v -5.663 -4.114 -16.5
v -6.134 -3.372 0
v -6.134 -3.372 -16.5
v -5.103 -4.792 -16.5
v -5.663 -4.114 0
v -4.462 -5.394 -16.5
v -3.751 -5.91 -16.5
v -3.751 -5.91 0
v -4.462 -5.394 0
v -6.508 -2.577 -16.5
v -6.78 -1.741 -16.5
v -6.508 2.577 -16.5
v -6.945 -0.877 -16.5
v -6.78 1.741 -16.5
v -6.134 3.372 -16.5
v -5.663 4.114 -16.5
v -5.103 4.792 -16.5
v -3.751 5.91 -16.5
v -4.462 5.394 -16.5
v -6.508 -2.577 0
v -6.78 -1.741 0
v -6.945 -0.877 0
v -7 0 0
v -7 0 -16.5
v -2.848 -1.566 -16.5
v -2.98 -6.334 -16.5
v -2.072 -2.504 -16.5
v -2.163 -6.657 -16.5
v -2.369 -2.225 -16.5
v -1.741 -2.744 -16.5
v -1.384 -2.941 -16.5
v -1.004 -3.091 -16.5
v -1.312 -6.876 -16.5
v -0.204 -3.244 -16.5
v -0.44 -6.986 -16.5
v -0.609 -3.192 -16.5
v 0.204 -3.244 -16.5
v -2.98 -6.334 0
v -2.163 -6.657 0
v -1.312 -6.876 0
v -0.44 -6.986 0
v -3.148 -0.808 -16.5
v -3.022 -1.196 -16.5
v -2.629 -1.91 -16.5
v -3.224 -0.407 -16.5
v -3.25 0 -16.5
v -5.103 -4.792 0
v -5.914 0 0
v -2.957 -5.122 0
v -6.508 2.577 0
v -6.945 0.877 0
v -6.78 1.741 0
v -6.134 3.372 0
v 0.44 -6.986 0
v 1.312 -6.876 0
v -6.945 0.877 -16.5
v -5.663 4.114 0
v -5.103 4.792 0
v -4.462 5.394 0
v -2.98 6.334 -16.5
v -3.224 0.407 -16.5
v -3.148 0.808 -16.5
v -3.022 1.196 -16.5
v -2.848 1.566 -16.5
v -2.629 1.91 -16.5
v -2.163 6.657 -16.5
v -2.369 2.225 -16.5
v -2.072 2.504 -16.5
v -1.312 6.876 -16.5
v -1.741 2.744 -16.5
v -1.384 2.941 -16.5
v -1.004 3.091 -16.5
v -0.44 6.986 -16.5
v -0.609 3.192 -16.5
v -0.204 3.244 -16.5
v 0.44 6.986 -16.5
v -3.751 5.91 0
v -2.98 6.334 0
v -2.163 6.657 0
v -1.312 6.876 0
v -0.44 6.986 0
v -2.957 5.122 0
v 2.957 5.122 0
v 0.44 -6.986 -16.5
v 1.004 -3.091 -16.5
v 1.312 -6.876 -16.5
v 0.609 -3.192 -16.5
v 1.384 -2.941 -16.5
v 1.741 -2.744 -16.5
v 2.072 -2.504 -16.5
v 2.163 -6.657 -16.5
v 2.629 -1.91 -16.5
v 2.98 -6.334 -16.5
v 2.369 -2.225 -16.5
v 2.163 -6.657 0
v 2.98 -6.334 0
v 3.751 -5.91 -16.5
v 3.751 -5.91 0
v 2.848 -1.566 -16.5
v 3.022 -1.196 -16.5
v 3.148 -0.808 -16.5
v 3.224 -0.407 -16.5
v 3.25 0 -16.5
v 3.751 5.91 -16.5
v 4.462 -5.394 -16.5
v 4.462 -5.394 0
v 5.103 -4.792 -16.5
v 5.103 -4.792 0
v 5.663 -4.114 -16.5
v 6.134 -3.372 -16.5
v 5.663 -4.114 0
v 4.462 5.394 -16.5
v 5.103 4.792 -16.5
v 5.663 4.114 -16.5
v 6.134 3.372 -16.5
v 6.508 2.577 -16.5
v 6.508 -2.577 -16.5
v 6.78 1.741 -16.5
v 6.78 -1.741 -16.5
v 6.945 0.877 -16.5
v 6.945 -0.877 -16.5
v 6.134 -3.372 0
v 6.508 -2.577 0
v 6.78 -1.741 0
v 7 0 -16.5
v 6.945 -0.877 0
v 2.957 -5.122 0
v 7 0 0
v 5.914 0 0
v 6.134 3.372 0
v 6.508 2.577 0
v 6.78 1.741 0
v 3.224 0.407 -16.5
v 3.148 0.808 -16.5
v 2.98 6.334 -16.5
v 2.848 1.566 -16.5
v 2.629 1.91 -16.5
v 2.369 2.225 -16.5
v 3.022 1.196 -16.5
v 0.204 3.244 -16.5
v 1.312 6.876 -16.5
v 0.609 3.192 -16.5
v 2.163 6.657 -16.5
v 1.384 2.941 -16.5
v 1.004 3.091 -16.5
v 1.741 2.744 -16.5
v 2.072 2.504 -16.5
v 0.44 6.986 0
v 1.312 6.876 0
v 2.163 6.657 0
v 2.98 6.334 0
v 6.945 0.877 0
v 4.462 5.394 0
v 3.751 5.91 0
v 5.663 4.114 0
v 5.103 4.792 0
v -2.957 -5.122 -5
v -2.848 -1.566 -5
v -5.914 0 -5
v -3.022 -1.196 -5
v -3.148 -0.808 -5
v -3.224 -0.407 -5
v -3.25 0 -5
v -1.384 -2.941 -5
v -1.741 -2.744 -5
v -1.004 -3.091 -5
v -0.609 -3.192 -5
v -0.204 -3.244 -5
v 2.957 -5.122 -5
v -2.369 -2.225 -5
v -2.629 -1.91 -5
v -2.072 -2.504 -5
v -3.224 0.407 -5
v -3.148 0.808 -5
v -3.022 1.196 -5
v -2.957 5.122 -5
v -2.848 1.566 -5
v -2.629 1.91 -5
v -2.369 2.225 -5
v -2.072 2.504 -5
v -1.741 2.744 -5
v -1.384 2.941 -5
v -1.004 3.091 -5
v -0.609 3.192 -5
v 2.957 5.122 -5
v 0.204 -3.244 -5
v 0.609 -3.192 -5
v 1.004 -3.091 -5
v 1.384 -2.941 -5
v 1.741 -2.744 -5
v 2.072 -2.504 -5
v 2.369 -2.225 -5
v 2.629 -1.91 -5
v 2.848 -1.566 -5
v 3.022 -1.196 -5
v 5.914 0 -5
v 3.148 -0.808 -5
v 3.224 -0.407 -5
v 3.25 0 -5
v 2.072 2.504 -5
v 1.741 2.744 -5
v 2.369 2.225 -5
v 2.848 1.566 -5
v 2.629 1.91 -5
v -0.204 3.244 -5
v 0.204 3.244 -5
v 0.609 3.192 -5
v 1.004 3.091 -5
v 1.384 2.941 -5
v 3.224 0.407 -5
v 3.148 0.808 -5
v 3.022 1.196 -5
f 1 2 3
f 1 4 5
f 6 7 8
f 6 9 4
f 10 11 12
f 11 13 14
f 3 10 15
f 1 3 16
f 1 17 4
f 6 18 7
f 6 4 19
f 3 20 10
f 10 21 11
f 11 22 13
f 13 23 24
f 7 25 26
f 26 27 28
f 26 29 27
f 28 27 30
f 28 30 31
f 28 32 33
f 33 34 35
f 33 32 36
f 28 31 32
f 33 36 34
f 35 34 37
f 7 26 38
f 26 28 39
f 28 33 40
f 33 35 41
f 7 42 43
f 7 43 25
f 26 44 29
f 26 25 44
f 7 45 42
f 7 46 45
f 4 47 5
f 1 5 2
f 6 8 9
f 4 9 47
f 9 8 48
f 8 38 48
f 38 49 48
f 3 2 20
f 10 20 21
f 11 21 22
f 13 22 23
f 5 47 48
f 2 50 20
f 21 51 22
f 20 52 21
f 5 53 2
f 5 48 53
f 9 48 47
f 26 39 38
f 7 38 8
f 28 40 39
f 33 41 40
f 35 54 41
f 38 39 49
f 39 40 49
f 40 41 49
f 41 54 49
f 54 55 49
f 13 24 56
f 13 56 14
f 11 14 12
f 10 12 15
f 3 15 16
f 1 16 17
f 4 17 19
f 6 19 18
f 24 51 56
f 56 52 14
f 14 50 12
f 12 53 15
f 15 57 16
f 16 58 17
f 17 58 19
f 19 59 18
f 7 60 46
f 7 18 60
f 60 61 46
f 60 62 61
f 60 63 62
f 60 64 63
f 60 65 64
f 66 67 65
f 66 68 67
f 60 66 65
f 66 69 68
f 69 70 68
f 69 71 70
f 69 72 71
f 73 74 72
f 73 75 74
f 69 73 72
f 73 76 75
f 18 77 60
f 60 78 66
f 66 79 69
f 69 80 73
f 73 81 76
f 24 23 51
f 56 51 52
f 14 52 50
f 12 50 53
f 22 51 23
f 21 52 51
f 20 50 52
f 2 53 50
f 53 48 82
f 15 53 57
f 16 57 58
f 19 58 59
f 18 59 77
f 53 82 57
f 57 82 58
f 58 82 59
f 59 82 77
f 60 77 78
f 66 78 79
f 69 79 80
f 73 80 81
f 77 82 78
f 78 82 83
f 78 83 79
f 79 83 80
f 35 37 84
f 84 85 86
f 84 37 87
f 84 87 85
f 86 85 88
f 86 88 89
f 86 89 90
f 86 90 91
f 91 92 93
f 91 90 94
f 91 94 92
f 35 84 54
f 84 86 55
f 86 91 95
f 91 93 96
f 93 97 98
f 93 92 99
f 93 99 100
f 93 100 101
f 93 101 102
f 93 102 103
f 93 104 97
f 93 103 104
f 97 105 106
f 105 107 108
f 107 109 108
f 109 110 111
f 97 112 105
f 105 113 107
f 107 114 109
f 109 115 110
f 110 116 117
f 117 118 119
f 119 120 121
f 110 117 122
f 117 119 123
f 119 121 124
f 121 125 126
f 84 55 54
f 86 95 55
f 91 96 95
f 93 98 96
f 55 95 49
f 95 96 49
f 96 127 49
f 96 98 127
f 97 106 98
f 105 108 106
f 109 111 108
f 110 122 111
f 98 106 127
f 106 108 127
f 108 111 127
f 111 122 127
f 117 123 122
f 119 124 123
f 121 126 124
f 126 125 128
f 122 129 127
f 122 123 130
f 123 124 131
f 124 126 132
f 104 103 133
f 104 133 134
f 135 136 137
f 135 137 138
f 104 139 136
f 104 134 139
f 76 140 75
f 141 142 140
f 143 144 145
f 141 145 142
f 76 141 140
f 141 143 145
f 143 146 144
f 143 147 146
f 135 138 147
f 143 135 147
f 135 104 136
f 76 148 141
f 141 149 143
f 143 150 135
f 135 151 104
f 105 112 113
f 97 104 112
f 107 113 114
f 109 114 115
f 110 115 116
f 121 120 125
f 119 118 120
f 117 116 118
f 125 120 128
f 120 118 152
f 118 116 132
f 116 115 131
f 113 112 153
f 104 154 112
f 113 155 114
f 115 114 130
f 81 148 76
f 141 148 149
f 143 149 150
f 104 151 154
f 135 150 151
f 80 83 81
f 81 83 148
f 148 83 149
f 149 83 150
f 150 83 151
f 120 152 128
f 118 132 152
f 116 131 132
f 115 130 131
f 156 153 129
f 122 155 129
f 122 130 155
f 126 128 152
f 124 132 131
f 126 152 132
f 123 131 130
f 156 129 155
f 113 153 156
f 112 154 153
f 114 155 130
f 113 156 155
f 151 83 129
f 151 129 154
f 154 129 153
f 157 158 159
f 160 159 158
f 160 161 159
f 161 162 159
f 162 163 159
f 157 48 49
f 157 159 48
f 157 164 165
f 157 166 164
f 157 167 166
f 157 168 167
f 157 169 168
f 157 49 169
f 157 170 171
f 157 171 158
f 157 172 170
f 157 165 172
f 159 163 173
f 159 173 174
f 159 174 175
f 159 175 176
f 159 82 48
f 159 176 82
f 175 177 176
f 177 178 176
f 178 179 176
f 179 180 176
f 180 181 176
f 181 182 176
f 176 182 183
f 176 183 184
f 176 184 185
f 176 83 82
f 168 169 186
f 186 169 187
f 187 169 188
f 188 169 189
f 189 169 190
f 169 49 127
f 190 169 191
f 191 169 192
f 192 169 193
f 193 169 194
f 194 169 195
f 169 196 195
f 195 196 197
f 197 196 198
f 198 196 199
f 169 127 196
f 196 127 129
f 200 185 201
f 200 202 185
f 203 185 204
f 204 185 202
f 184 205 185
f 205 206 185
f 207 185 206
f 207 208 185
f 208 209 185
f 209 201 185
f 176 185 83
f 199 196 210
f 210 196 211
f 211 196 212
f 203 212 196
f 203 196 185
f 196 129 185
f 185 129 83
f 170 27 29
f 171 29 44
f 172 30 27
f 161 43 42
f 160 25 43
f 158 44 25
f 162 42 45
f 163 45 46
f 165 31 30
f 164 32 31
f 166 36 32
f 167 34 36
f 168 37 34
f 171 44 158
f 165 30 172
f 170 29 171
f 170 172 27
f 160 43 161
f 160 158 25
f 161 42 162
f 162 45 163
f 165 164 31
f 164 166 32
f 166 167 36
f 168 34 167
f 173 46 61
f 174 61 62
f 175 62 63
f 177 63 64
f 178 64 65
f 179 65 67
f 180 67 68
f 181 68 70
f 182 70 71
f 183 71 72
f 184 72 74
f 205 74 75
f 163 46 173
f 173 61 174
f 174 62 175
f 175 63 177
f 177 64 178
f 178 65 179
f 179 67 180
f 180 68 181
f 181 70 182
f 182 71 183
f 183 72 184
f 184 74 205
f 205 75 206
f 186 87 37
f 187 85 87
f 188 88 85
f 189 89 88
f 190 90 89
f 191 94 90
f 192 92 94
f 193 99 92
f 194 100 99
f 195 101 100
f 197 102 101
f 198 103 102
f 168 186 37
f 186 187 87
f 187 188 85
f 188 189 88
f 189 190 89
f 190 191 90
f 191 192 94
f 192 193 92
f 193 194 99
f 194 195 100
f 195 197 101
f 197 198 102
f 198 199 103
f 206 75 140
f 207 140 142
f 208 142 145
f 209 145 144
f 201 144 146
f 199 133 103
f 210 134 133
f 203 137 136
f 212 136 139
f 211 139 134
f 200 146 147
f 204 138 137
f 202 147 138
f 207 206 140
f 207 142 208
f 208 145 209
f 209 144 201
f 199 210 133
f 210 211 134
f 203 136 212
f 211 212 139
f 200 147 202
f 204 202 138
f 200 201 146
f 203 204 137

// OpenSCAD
$fn = 50;

difference() {
	union() {
		translate(v = [0, 0, -16.5]) {
			cylinder(h = 16.5, r = 7.0);
		}
		#translate(v = [0, 0, -18.0]) {
			cylinder(h = 18, r = 2.875);
		}
	}
	union() {
		translate(v = [0, 0, 0]) {
			rotate(a = [0, 0, 0]) {
				difference() {
					union() {
						translate(v = [0, 0, -5]) {
							linear_extrude(height = 5) {
								polygon(points = [[5.914249999999999, 0.0], [2.957125, 5.1218907443321156], [-2.9571249999999982, 5.1218907443321156], [-5.914249999999999, 7.242867331857232e-16], [-2.9571250000000022, -5.121890744332115], [2.9571249999999956, -5.121890744332118]]);
							}
						}
					}
					union();
				}
			}
		}
		#translate(v = [0, 0, -100.0]) {
			cylinder(h = 200, r = 3.25);
		}
	}
}
